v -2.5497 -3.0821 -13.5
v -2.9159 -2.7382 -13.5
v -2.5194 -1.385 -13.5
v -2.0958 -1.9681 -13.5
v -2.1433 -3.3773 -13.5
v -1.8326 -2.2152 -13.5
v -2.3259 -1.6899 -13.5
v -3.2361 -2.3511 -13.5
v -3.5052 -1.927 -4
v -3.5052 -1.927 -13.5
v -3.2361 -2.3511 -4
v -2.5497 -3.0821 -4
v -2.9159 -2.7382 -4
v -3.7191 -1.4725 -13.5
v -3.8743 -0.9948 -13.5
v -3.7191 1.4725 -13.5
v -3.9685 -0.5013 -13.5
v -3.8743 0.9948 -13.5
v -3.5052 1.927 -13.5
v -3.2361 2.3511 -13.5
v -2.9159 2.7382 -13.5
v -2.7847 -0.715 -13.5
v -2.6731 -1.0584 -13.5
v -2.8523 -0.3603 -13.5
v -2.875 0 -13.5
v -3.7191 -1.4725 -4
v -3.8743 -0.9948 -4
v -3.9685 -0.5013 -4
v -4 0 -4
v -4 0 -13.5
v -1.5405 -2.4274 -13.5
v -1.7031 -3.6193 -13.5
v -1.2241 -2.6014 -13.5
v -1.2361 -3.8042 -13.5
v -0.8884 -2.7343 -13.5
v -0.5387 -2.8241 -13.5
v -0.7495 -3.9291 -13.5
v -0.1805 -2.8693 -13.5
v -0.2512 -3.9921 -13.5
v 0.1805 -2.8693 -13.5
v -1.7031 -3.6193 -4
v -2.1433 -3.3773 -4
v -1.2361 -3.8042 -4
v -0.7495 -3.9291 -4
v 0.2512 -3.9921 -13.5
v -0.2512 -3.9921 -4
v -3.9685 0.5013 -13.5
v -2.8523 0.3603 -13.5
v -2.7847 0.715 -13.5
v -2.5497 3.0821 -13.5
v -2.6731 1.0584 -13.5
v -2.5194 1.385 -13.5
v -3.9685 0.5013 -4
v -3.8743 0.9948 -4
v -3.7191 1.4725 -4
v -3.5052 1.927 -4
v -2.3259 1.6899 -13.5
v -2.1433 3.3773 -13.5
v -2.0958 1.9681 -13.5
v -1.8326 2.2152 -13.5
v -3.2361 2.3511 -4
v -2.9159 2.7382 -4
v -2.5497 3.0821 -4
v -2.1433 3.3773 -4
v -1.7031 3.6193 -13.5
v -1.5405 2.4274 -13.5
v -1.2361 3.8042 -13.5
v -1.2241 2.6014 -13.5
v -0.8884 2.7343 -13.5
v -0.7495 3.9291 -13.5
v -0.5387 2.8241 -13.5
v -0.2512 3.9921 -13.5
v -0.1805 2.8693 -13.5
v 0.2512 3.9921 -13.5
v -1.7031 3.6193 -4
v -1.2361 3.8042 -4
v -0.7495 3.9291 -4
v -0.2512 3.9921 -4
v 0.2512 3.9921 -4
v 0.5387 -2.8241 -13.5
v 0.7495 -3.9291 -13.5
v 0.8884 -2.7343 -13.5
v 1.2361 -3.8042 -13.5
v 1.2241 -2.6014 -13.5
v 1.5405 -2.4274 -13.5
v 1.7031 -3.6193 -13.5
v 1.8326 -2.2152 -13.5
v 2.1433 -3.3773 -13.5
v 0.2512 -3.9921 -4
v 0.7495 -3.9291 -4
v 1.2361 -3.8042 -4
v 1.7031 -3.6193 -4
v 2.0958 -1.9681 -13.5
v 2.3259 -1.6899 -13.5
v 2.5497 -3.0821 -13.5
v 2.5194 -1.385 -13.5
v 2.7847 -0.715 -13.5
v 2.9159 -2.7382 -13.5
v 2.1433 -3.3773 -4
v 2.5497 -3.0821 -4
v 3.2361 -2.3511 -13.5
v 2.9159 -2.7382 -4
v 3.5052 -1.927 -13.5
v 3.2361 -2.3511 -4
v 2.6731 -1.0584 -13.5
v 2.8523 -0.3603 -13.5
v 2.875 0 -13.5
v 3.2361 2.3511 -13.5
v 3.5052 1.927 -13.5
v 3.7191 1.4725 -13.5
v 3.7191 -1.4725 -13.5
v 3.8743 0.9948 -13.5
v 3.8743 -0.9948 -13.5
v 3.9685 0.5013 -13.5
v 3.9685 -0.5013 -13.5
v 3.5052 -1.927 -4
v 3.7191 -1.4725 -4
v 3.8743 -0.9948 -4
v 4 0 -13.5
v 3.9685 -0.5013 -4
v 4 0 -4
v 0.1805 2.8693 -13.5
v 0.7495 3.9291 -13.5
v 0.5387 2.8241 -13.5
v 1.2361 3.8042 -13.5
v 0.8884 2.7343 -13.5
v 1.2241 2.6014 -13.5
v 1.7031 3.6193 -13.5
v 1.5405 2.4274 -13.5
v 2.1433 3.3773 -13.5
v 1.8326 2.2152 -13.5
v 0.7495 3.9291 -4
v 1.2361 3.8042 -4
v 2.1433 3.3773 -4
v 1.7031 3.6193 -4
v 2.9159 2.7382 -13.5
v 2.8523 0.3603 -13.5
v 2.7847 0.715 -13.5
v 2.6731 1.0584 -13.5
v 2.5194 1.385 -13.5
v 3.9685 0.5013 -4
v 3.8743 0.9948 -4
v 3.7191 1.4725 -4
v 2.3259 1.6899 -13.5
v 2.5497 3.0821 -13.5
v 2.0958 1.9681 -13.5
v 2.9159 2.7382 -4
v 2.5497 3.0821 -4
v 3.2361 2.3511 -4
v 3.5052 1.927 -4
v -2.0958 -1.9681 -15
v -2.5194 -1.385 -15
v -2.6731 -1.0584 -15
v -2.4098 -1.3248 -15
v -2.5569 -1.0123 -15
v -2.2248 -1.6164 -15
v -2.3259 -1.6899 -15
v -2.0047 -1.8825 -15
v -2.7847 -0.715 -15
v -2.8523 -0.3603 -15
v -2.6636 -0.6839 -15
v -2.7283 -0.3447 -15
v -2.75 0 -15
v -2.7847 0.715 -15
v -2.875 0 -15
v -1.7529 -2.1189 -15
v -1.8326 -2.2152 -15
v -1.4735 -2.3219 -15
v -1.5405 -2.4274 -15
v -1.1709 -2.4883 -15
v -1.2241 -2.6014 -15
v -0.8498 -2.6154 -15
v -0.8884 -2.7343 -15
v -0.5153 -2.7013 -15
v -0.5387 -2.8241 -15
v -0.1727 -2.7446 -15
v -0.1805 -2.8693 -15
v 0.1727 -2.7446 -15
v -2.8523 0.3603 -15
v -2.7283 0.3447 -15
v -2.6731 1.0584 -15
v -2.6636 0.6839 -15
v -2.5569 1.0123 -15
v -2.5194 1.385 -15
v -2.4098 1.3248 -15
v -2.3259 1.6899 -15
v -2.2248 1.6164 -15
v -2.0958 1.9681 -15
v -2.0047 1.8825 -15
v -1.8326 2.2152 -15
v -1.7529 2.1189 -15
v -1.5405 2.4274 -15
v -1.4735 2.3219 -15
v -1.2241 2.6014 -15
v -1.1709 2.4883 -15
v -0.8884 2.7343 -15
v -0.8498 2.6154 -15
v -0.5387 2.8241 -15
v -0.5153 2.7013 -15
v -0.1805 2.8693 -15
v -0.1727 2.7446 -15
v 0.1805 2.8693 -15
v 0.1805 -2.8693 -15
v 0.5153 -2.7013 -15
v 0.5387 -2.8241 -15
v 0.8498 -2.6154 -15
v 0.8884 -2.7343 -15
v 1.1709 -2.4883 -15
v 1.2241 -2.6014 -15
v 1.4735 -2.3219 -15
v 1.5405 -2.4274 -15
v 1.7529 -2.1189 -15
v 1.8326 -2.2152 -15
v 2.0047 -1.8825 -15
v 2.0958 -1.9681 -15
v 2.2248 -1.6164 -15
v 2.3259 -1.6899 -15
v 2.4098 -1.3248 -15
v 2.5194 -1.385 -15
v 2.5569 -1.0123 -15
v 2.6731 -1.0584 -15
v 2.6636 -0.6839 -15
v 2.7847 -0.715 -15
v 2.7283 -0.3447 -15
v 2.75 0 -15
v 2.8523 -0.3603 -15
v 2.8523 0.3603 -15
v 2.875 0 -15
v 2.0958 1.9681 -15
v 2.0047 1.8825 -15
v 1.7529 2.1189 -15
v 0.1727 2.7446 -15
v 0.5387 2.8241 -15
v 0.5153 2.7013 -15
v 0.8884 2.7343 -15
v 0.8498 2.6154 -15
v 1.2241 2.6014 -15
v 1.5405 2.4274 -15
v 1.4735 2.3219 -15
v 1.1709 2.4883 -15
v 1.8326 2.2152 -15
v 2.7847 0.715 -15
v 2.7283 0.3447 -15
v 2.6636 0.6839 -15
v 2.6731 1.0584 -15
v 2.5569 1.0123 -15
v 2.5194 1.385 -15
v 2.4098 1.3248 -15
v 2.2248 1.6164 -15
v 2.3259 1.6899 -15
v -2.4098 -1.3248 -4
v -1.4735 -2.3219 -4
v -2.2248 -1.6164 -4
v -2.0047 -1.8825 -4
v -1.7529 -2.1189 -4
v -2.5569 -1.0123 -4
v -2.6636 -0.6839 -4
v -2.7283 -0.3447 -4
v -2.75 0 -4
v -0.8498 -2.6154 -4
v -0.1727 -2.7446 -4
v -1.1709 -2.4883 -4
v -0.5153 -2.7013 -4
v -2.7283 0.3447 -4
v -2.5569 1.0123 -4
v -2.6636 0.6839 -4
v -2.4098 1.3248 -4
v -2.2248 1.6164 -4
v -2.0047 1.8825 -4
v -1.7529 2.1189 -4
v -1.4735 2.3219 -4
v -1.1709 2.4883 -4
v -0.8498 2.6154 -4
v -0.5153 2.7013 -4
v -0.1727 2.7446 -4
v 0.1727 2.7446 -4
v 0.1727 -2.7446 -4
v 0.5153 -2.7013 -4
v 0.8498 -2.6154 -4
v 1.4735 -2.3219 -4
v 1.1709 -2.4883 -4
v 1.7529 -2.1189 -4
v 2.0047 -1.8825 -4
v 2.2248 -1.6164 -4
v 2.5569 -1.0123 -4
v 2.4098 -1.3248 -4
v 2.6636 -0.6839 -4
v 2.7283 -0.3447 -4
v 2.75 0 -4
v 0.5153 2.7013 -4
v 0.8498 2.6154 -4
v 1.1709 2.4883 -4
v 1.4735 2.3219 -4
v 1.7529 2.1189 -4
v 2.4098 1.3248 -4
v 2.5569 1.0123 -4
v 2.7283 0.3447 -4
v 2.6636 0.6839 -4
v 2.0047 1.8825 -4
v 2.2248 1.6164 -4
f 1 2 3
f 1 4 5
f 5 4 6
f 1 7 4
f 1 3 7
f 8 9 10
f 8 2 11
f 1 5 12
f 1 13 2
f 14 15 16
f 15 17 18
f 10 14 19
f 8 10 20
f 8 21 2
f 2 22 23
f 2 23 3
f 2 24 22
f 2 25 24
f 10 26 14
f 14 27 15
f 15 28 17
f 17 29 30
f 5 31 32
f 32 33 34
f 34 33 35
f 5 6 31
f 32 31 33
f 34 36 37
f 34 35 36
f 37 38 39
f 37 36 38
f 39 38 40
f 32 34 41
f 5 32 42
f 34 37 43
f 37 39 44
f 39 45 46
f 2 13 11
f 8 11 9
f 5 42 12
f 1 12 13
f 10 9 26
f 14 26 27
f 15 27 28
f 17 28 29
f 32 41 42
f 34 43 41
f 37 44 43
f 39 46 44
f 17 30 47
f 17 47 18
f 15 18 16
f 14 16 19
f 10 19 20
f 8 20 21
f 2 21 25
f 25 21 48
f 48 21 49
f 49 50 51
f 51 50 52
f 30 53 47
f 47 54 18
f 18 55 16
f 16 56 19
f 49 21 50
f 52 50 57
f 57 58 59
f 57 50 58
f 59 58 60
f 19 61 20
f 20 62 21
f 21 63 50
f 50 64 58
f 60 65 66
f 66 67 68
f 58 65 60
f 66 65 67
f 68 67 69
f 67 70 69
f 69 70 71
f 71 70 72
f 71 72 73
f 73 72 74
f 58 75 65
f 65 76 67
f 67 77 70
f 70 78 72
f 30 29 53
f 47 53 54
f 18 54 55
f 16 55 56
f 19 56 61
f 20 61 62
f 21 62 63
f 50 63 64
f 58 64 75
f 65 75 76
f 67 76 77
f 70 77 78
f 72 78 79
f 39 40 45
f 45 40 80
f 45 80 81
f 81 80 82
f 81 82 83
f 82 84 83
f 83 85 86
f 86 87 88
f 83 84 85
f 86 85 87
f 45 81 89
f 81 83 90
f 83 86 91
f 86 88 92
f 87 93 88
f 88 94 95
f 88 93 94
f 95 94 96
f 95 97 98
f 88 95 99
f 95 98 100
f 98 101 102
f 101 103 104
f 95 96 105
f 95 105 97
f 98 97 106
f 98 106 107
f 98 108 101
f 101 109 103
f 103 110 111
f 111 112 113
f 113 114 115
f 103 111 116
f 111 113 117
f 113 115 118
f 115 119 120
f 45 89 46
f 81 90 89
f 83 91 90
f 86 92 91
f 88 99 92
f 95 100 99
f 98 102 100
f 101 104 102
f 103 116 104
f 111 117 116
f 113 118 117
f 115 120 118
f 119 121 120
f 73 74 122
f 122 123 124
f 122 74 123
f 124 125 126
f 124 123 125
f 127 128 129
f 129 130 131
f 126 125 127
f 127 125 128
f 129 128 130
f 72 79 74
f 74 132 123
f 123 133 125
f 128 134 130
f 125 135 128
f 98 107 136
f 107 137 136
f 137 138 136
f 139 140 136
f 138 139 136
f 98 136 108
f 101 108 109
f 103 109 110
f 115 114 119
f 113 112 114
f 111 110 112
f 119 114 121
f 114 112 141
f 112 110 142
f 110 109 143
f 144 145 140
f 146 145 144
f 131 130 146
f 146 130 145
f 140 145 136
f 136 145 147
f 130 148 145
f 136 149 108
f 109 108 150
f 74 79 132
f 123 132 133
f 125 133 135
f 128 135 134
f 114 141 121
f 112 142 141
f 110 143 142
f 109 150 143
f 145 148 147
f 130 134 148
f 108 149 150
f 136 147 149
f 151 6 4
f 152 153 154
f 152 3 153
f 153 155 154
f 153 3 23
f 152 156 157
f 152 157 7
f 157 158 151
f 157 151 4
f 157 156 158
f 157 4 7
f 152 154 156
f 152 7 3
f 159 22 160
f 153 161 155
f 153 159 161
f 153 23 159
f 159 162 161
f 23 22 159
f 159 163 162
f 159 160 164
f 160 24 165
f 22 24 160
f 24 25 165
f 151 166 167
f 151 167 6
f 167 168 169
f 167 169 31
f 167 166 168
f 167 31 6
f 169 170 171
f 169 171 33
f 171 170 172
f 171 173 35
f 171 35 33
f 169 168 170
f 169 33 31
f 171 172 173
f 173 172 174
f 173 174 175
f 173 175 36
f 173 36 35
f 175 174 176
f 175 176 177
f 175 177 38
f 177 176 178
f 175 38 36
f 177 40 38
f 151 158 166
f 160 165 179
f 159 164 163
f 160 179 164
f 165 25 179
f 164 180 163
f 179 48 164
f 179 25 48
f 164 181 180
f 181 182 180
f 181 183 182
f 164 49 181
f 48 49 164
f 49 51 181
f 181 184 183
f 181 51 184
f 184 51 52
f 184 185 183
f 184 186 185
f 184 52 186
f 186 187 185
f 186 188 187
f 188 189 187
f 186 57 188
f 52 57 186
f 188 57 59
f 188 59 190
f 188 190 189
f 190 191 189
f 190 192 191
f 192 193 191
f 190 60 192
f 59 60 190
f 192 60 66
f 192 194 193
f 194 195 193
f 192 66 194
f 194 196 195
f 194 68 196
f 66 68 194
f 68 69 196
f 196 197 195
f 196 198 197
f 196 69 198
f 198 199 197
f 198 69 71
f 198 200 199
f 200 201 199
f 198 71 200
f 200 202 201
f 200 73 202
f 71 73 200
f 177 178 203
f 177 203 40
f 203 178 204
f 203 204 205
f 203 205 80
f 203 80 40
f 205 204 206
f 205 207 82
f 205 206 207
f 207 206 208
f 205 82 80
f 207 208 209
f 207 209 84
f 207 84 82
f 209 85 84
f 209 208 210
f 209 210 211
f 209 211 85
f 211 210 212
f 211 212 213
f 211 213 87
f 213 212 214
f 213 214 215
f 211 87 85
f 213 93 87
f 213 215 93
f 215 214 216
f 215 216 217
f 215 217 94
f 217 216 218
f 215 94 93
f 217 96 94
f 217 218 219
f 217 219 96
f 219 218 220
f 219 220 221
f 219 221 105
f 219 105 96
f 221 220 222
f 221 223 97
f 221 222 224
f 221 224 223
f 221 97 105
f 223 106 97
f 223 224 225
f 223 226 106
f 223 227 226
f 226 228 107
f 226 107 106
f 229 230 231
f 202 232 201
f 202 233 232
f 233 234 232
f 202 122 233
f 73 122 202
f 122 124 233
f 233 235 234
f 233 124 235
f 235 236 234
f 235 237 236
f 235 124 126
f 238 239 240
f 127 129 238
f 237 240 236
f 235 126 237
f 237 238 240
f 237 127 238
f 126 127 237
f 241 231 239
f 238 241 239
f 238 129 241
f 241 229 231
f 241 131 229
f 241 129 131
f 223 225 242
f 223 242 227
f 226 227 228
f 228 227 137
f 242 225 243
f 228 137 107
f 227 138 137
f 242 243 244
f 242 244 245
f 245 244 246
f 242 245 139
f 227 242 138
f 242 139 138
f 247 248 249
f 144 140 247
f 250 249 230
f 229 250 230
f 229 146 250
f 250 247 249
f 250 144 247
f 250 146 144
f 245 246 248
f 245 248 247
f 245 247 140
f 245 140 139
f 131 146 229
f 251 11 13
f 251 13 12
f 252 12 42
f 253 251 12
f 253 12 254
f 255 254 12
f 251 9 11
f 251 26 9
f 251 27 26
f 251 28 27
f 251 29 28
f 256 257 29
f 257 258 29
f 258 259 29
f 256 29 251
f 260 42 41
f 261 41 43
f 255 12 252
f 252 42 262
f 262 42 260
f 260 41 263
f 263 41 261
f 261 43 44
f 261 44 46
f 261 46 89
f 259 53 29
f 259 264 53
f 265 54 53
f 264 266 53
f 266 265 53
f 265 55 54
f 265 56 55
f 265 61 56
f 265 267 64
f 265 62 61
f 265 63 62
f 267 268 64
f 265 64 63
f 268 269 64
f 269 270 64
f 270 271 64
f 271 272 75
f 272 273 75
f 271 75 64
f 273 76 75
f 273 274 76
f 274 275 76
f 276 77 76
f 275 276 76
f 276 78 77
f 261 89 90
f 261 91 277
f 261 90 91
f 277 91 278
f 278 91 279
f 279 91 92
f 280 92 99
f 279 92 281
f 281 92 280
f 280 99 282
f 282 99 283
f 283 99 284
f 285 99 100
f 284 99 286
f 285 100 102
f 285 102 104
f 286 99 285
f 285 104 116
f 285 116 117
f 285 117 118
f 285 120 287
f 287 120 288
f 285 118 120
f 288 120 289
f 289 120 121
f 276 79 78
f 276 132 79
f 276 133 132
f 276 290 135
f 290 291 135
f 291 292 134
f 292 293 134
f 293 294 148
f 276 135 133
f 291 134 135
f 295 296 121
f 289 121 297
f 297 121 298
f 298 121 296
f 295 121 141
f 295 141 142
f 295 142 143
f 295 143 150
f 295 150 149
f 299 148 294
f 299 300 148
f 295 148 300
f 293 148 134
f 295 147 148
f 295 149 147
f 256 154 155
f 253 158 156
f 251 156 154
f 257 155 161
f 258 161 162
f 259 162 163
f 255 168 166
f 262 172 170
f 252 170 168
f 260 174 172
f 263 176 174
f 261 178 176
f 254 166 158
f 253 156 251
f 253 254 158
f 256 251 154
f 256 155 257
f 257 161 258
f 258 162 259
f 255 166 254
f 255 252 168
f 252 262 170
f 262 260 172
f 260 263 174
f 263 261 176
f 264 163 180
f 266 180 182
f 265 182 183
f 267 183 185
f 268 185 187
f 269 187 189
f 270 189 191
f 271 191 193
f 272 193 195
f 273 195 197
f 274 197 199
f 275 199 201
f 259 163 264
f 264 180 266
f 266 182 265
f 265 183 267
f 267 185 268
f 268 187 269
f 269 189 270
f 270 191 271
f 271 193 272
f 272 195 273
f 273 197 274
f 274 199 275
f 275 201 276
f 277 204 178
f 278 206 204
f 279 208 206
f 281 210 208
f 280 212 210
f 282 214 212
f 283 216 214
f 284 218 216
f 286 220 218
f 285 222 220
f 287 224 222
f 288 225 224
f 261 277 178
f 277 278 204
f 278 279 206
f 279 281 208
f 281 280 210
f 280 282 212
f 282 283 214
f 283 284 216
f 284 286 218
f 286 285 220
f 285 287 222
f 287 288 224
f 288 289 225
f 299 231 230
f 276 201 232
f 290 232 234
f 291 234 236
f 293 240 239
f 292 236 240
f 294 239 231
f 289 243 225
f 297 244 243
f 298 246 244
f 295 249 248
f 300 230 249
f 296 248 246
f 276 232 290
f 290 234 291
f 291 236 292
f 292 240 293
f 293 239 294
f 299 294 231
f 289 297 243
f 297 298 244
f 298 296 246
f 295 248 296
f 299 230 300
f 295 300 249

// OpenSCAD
$fn = 50;

difference() {
	union() {
		translate(v = [0, 0, -13.5]) {
			cylinder(h = 16.5, r = 4.0);
		}
		#translate(v = [0, 0, -15.0]) {
			cylinder(h = 15, r = 2.875);
		}
	}
	union() {
		translate(v = [0, 0, 0]) {
			rotate(a = [0, 0, 0]) {
				difference() {
					union() {
						translate(v = [0, 0, -4]) {
							linear_extrude(height = 4) {
								polygon(points = [[4.8468, 0.0], [2.4234000000000004, 4.197451927062417], [-2.423399999999999, 4.197451927062417], [-4.8468, 5.935618106107392e-16], [-2.423400000000002, -4.197451927062416], [2.423399999999997, -4.197451927062419]]);
							}
						}
					}
					union();
				}
			}
		}
		#cylinder(h = 3, r = 6.25);
		#translate(v = [0, 0, -100.0]) {
			cylinder(h = 200, r = 2.75);
		}
	}
}
